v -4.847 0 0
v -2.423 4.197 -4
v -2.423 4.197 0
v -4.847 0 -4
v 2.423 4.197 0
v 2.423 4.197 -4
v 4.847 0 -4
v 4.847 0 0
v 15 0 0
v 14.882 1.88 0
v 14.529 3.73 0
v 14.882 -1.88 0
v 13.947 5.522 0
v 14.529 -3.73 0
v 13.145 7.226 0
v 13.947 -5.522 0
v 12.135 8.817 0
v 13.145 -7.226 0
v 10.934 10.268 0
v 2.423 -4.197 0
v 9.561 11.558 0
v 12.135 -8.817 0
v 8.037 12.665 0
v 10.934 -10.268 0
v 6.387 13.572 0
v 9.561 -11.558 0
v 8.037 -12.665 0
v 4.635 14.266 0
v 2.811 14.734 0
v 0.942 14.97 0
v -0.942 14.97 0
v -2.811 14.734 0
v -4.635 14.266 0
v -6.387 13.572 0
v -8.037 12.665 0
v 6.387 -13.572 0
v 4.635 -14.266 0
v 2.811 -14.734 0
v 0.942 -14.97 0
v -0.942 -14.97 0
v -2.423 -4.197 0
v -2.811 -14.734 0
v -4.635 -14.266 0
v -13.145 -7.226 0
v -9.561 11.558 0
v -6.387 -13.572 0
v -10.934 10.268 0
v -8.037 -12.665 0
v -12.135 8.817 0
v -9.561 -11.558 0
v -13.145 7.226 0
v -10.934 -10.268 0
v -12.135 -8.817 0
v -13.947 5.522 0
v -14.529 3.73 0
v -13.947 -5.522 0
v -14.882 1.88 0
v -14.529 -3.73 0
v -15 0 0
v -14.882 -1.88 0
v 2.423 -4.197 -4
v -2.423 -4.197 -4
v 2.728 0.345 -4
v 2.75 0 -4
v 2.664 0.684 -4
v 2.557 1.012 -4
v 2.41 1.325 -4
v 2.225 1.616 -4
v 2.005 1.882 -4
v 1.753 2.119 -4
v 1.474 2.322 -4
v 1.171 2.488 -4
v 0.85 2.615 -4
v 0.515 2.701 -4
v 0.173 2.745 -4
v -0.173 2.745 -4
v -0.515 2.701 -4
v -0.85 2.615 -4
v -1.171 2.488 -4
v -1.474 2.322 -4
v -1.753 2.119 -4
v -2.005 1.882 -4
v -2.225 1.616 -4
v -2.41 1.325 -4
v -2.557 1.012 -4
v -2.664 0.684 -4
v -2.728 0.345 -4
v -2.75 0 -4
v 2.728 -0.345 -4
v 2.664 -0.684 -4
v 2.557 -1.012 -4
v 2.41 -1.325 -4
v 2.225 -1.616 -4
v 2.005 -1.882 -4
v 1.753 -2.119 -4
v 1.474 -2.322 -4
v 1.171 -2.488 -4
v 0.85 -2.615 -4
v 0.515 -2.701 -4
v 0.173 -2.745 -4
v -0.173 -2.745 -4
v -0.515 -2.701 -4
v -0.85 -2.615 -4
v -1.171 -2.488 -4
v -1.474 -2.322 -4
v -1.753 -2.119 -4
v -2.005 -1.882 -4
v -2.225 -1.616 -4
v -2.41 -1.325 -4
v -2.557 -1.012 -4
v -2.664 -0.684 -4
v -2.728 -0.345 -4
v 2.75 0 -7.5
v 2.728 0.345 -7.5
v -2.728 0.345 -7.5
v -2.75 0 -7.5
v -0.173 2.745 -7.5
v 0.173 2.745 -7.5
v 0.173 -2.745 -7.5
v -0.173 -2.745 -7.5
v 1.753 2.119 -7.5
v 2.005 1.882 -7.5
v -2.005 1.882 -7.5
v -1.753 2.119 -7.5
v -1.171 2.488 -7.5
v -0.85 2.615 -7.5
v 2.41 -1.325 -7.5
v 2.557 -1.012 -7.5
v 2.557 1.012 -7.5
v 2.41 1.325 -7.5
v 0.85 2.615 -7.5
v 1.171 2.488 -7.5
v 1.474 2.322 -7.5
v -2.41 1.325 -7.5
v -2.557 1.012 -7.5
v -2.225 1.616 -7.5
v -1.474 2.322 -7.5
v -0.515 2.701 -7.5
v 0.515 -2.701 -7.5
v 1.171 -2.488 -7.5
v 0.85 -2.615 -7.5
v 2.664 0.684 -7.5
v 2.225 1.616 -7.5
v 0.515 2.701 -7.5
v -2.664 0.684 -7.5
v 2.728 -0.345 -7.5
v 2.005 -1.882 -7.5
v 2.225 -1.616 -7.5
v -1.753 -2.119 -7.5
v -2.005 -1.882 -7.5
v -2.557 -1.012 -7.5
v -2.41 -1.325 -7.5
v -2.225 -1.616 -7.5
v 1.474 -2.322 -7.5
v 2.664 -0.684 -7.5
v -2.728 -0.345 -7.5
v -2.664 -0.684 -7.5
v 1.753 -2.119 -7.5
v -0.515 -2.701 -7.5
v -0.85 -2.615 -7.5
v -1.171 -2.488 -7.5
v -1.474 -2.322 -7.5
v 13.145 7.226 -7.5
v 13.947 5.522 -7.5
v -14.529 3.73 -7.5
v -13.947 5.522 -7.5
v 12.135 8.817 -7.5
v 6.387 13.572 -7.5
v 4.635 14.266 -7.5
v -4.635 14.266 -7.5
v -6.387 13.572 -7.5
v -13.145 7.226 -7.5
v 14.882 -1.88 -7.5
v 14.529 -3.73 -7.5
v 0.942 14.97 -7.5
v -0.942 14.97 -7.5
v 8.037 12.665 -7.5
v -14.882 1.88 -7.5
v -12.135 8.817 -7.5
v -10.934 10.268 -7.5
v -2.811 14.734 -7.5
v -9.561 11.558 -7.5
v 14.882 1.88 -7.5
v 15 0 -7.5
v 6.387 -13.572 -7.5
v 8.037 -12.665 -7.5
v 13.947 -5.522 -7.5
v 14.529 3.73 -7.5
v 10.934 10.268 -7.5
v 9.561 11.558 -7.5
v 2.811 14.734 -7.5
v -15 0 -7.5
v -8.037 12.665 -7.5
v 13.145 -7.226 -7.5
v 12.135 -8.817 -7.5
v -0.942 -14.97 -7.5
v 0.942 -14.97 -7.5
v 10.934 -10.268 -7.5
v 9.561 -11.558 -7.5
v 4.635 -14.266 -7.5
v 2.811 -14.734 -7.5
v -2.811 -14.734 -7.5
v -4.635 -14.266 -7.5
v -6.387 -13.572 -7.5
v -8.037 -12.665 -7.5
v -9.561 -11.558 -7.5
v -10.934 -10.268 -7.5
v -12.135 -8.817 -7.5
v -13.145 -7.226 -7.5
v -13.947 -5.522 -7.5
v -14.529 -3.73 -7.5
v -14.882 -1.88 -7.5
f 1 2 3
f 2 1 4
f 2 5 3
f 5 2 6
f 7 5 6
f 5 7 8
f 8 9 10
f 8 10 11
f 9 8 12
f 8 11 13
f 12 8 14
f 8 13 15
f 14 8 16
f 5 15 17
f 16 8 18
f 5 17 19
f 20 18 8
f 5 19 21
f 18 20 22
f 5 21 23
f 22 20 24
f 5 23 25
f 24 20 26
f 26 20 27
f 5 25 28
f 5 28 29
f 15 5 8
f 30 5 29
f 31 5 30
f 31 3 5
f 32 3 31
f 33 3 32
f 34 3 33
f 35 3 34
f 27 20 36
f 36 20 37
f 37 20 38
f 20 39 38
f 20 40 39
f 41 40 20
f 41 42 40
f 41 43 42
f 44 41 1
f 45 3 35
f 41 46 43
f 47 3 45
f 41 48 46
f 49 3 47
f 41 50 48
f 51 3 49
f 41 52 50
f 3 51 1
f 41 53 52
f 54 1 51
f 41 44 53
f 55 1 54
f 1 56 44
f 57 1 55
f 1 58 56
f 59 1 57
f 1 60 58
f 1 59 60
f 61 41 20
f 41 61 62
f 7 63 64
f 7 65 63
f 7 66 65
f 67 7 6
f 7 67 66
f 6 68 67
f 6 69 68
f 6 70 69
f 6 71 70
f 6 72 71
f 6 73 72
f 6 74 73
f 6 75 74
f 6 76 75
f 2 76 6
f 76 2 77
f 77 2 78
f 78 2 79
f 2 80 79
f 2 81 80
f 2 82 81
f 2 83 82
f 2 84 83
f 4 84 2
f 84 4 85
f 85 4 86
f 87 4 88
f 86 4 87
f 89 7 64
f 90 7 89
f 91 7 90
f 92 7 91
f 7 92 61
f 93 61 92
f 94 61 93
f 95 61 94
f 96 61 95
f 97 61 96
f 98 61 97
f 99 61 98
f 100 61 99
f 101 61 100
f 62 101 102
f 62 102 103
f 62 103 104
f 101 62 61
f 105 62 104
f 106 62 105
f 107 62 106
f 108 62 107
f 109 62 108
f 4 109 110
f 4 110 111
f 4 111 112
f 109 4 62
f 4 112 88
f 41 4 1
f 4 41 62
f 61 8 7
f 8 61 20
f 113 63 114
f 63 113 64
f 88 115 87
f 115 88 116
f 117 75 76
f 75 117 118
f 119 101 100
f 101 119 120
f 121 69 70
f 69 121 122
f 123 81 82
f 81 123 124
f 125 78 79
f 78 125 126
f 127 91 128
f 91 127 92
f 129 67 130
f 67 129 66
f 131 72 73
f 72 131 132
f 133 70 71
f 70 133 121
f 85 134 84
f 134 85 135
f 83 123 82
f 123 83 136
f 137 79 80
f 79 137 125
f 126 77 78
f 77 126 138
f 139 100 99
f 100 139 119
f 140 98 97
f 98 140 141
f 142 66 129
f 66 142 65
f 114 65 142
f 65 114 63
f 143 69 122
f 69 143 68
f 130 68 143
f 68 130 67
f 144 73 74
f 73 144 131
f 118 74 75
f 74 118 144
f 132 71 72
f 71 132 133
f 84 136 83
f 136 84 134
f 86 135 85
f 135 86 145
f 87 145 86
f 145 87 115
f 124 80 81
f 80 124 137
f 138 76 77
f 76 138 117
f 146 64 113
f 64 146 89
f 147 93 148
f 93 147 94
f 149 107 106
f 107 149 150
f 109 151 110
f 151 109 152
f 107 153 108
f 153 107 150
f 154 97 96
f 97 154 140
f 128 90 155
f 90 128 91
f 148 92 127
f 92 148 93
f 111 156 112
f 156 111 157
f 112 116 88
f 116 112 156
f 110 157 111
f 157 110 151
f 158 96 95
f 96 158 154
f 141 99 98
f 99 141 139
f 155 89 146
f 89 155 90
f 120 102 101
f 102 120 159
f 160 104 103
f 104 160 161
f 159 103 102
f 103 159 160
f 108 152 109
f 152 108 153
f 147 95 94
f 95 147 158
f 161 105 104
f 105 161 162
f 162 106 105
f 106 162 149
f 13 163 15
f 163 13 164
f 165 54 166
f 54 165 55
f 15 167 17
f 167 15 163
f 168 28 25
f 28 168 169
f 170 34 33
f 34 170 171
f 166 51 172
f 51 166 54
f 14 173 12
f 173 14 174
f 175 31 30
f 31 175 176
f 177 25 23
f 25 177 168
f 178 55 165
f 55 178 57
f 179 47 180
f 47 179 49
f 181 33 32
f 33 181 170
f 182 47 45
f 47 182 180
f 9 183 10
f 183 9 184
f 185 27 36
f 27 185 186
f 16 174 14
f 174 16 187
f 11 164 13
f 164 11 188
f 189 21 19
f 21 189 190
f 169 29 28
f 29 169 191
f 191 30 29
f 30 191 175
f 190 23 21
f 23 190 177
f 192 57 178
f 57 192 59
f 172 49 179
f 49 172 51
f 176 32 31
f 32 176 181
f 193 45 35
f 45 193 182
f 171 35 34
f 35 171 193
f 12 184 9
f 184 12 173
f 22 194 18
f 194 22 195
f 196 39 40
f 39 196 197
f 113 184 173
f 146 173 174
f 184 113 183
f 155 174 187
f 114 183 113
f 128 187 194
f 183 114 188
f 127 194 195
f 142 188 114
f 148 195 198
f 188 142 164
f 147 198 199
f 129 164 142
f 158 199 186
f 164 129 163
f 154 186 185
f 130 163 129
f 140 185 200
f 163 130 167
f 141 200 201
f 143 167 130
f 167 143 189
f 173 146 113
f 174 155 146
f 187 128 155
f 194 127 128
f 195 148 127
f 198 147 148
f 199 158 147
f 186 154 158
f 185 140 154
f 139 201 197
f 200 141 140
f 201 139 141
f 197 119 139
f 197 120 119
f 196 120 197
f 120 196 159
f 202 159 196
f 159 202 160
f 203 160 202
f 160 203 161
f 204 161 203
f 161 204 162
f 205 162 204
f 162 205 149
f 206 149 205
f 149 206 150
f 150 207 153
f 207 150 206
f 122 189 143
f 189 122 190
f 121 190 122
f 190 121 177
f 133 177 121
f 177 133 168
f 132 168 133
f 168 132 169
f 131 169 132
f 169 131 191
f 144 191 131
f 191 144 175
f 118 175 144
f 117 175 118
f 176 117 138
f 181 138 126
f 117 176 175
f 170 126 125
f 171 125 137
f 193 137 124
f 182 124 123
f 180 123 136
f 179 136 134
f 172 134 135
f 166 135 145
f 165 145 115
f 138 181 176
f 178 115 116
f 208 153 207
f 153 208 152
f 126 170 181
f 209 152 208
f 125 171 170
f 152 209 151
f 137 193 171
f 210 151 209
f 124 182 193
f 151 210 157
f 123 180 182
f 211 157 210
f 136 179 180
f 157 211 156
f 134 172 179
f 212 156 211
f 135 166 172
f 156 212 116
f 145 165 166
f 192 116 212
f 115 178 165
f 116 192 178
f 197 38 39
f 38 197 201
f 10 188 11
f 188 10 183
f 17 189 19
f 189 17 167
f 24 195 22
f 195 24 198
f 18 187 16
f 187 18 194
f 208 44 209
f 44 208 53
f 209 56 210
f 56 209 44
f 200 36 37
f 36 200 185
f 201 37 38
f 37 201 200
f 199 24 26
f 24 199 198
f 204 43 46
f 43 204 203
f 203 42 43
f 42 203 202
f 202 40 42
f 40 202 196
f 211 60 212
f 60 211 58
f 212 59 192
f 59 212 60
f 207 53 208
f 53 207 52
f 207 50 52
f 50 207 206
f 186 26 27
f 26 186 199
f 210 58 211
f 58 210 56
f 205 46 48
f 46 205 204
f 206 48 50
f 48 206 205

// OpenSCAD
$fn = 50;


difference() {
	union() {
		translate(v = [0, 0, -7.5000000000]) {
			cylinder(h = 7.5000000000, r = 15.0000000000);
		}
	}
	union() {
		translate(v = [0, 0, 0]) {
			rotate(a = [0, 0, 0]) {
				difference() {
					union() {
						translate(v = [0, 0, -4]) {
							linear_extrude(height = 4) {
								polygon(points = [[4.8468000000, 0.0000000000], [2.4234000000, 4.1974519271], [-2.4234000000, 4.1974519271], [-4.8468000000, 0.0000000000], [-2.4234000000, -4.1974519271], [2.4234000000, -4.1974519271]]);
							}
						}
					}
					union();
				}
			}
		}
		#translate(v = [0, 0, -100.0000000000]) {
			cylinder(h = 200, r = 2.7500000000);
		}
	}
}
